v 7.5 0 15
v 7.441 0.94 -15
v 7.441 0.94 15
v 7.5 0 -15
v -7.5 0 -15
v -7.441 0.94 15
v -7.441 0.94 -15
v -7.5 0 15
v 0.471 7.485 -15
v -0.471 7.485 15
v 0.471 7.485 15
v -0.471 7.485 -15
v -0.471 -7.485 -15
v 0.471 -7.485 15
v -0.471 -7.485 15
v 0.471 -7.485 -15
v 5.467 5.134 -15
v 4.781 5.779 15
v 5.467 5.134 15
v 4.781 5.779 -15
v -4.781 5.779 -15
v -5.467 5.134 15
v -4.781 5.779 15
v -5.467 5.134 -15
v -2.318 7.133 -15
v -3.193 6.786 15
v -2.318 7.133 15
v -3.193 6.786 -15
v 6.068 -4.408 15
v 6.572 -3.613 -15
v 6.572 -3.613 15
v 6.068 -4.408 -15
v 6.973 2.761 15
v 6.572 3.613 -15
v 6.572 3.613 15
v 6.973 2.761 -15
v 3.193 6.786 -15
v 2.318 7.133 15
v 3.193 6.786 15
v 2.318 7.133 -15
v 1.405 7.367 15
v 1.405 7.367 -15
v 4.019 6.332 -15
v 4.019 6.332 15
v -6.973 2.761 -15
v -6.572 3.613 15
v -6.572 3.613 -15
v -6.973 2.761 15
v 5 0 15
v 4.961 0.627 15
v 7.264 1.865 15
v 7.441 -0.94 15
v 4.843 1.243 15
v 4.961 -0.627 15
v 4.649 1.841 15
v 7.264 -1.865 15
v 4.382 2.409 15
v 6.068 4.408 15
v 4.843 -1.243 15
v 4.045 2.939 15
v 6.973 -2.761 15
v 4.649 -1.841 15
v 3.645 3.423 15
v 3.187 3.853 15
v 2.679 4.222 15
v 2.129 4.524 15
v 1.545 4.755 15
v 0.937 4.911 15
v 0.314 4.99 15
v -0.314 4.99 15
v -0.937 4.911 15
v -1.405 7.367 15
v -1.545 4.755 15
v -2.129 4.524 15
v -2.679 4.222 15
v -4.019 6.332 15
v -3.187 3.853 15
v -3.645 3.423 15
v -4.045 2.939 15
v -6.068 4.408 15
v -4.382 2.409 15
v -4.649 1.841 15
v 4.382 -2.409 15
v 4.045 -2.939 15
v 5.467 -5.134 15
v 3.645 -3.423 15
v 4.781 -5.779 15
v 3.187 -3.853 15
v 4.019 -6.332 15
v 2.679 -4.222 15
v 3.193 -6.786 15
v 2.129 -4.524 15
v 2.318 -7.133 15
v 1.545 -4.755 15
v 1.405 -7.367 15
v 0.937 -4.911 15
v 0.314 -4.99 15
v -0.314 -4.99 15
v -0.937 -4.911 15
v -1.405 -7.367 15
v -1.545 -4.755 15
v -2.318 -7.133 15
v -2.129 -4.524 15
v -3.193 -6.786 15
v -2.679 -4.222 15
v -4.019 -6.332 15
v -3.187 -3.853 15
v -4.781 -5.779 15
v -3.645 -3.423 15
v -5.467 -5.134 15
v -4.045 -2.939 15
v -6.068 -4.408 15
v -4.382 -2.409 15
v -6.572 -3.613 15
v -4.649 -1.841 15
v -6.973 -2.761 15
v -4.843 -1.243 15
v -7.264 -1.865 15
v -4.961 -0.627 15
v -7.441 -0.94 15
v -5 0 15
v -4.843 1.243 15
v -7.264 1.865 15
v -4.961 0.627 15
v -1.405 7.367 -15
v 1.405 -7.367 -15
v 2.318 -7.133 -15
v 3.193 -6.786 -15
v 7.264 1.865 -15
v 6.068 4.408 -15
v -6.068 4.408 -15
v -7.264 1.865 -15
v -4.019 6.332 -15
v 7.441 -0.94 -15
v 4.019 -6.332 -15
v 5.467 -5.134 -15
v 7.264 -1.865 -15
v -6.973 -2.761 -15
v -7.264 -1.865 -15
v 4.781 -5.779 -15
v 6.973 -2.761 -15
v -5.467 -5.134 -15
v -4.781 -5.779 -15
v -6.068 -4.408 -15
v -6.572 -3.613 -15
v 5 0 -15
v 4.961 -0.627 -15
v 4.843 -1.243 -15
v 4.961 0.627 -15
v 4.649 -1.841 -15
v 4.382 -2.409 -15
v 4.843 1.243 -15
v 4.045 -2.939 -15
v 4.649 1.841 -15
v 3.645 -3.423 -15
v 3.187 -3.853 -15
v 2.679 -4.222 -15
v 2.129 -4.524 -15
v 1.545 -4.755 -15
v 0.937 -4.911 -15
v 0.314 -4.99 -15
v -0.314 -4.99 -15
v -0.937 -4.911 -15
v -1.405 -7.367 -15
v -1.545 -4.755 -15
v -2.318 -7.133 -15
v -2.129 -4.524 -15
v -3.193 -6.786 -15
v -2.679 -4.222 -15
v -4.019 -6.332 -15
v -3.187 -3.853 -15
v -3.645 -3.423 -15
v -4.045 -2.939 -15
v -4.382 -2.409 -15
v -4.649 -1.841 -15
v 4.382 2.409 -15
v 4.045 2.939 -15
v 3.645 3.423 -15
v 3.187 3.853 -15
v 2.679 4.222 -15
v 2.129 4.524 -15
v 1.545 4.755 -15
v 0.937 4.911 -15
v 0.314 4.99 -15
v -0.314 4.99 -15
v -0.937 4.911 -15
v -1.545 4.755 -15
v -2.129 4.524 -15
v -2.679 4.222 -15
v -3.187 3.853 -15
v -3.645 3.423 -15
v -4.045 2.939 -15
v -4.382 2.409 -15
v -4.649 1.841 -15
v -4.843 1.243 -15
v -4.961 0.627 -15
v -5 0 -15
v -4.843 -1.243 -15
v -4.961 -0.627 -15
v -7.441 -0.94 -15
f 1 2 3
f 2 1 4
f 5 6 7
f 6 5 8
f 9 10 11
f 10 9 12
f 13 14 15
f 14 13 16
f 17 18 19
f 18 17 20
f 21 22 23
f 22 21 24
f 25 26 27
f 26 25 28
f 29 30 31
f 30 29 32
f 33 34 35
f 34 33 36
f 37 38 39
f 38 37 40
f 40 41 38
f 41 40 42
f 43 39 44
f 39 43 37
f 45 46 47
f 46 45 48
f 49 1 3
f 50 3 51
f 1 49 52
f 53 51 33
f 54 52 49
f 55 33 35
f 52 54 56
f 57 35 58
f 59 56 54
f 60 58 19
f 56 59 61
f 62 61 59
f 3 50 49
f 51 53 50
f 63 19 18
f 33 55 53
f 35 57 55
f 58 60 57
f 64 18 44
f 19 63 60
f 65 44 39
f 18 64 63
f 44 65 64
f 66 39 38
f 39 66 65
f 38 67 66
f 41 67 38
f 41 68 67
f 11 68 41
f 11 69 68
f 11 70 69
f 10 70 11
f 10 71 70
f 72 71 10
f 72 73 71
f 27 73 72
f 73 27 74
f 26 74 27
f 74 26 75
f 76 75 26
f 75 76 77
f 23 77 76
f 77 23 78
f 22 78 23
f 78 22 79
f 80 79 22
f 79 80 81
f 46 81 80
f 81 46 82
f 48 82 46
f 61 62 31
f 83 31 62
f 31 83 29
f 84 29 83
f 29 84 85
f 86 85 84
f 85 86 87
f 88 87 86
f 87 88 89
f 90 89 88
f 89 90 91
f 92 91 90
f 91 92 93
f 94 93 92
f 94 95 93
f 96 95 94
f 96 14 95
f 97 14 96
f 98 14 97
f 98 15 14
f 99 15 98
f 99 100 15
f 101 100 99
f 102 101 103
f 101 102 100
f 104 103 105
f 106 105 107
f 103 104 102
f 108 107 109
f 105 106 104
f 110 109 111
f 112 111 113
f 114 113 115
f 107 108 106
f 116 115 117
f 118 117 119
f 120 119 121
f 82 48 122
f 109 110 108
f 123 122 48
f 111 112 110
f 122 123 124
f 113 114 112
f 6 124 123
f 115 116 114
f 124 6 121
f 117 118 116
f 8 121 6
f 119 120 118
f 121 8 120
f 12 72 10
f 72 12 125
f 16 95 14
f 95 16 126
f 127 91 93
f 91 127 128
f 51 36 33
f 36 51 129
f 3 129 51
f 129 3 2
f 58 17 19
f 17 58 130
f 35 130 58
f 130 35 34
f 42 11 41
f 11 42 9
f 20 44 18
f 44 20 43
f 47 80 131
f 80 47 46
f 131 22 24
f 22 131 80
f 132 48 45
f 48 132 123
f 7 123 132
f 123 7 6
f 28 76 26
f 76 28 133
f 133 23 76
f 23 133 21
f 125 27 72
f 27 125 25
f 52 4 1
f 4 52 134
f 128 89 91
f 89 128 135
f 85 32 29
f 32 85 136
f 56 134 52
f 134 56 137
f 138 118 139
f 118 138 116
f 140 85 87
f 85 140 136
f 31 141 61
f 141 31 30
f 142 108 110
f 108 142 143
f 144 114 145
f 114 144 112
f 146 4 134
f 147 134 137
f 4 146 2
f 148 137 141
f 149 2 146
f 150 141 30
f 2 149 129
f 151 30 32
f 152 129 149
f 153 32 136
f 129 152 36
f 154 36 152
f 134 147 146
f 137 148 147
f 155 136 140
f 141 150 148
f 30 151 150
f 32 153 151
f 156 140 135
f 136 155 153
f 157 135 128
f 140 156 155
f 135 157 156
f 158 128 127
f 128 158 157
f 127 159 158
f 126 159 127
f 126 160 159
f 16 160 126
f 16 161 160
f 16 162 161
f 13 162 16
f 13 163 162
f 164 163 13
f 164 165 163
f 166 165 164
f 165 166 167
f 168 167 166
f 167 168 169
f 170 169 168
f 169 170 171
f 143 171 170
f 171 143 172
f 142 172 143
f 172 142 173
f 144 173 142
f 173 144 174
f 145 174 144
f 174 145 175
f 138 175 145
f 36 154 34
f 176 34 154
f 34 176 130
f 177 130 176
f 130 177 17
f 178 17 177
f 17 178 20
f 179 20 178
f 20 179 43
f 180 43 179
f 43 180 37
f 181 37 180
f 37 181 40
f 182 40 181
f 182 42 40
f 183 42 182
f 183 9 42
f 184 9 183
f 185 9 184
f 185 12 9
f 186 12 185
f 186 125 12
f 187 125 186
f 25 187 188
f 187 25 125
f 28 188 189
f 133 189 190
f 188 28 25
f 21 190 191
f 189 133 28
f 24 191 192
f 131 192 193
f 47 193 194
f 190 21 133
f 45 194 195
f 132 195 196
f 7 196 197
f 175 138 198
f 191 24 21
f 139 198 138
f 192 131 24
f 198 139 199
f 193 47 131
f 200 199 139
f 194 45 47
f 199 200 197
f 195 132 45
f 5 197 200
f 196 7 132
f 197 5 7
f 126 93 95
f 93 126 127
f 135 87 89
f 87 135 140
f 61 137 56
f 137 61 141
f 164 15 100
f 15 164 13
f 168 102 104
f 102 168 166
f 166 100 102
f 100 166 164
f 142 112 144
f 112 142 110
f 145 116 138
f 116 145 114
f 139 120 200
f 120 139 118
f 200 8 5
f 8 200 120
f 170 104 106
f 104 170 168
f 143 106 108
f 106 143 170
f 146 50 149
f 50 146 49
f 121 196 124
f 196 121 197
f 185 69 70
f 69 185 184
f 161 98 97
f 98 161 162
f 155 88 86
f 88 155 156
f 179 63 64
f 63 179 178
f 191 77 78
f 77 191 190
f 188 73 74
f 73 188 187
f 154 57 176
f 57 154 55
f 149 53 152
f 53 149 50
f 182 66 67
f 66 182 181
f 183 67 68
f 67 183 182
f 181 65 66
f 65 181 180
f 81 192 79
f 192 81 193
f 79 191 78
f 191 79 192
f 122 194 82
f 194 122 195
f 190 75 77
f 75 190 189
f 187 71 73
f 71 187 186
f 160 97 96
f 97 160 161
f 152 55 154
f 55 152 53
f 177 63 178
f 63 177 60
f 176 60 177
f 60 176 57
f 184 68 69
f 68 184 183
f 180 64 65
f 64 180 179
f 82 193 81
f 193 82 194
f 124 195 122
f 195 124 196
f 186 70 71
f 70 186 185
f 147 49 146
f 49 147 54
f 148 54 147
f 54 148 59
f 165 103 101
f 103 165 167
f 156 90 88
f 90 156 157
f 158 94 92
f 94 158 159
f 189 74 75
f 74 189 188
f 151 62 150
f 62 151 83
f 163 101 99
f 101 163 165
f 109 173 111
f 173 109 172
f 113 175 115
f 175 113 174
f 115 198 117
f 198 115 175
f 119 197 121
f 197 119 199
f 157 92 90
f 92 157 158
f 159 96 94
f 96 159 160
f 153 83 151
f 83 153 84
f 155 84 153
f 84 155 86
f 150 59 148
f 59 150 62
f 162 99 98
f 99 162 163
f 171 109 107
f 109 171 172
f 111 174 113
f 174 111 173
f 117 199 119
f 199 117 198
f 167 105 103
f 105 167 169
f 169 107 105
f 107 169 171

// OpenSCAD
$fn = 50;


difference() {
	union() {
		translate(v = [0, 0, -15.0000000000]) {
			cylinder(h = 30, r = 7.5000000000);
		}
	}
	union() {
		translate(v = [0, 0, -100.0000000000]) {
			cylinder(h = 200, r = 5.0000000000);
		}
	}
}
